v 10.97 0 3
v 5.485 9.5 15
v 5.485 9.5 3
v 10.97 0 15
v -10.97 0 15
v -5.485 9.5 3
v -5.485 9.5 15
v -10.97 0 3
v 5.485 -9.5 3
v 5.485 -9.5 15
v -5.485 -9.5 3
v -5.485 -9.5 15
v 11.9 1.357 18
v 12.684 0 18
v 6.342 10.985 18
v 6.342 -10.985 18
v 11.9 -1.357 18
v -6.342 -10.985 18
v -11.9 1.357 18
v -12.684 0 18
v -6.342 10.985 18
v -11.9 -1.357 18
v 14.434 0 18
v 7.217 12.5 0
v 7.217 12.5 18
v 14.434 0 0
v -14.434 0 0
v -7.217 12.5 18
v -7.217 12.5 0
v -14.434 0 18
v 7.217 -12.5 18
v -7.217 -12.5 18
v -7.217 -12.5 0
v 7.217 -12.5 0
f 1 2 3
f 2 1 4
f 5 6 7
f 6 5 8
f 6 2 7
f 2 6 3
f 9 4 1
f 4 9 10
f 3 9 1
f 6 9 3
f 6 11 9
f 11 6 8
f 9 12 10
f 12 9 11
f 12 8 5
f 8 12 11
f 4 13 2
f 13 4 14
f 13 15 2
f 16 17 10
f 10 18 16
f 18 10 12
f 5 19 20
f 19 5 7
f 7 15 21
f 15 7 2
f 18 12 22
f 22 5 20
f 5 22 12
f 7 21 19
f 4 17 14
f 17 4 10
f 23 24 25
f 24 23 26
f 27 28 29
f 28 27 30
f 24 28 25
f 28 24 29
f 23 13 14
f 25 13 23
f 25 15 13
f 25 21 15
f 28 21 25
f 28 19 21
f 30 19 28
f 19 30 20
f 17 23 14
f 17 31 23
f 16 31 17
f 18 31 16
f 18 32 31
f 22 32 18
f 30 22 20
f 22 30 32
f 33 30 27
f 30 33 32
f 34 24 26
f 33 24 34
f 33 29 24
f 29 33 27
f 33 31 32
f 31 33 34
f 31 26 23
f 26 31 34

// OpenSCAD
$fn = 120;

sides = 6;
sprinkler_inner_flat = 19;
sprinkler_wall_thickness = 3;
sprinkler_base_thickness = 3;
sprinkler_inner_height = 15;
sprinkler_inner_chamfer_height = 3;
sprinkler_inner_chamfer_offset = 2;
render_epsilon = 0.5;

function radius_from_flat(flat_distance) = (flat_distance / 2) / cos(180 / sides);

module hex_prism(radius_value, height_value) {
    cylinder(r = radius_value, h = height_value, $fn = sides);
}

module sprinkler_cap() {
    assert(sprinkler_inner_chamfer_height <= sprinkler_inner_height, "Chamfer taller than inner height");
    assert(sprinkler_inner_chamfer_offset <= sprinkler_wall_thickness, "Chamfer offset exceeds wall thickness");

    outer_flat = sprinkler_inner_flat + (2 * sprinkler_wall_thickness);
    outer_radius = radius_from_flat(outer_flat);
    inner_radius = radius_from_flat(sprinkler_inner_flat);
    outer_height = sprinkler_inner_height + sprinkler_base_thickness;
    chamfer_start_height = sprinkler_base_thickness + sprinkler_inner_height - sprinkler_inner_chamfer_height;

    difference() {
        hex_prism(outer_radius, outer_height);
        union() {
            translate([0, 0, sprinkler_base_thickness])
                hex_prism(inner_radius, sprinkler_inner_height + render_epsilon);
            translate([0, 0, chamfer_start_height])
                cylinder(h = sprinkler_inner_chamfer_height + render_epsilon,
                         r1 = inner_radius,
                         r2 = inner_radius + sprinkler_inner_chamfer_offset,
                         $fn = sides);
        }
    }
}

sprinkler_cap();
